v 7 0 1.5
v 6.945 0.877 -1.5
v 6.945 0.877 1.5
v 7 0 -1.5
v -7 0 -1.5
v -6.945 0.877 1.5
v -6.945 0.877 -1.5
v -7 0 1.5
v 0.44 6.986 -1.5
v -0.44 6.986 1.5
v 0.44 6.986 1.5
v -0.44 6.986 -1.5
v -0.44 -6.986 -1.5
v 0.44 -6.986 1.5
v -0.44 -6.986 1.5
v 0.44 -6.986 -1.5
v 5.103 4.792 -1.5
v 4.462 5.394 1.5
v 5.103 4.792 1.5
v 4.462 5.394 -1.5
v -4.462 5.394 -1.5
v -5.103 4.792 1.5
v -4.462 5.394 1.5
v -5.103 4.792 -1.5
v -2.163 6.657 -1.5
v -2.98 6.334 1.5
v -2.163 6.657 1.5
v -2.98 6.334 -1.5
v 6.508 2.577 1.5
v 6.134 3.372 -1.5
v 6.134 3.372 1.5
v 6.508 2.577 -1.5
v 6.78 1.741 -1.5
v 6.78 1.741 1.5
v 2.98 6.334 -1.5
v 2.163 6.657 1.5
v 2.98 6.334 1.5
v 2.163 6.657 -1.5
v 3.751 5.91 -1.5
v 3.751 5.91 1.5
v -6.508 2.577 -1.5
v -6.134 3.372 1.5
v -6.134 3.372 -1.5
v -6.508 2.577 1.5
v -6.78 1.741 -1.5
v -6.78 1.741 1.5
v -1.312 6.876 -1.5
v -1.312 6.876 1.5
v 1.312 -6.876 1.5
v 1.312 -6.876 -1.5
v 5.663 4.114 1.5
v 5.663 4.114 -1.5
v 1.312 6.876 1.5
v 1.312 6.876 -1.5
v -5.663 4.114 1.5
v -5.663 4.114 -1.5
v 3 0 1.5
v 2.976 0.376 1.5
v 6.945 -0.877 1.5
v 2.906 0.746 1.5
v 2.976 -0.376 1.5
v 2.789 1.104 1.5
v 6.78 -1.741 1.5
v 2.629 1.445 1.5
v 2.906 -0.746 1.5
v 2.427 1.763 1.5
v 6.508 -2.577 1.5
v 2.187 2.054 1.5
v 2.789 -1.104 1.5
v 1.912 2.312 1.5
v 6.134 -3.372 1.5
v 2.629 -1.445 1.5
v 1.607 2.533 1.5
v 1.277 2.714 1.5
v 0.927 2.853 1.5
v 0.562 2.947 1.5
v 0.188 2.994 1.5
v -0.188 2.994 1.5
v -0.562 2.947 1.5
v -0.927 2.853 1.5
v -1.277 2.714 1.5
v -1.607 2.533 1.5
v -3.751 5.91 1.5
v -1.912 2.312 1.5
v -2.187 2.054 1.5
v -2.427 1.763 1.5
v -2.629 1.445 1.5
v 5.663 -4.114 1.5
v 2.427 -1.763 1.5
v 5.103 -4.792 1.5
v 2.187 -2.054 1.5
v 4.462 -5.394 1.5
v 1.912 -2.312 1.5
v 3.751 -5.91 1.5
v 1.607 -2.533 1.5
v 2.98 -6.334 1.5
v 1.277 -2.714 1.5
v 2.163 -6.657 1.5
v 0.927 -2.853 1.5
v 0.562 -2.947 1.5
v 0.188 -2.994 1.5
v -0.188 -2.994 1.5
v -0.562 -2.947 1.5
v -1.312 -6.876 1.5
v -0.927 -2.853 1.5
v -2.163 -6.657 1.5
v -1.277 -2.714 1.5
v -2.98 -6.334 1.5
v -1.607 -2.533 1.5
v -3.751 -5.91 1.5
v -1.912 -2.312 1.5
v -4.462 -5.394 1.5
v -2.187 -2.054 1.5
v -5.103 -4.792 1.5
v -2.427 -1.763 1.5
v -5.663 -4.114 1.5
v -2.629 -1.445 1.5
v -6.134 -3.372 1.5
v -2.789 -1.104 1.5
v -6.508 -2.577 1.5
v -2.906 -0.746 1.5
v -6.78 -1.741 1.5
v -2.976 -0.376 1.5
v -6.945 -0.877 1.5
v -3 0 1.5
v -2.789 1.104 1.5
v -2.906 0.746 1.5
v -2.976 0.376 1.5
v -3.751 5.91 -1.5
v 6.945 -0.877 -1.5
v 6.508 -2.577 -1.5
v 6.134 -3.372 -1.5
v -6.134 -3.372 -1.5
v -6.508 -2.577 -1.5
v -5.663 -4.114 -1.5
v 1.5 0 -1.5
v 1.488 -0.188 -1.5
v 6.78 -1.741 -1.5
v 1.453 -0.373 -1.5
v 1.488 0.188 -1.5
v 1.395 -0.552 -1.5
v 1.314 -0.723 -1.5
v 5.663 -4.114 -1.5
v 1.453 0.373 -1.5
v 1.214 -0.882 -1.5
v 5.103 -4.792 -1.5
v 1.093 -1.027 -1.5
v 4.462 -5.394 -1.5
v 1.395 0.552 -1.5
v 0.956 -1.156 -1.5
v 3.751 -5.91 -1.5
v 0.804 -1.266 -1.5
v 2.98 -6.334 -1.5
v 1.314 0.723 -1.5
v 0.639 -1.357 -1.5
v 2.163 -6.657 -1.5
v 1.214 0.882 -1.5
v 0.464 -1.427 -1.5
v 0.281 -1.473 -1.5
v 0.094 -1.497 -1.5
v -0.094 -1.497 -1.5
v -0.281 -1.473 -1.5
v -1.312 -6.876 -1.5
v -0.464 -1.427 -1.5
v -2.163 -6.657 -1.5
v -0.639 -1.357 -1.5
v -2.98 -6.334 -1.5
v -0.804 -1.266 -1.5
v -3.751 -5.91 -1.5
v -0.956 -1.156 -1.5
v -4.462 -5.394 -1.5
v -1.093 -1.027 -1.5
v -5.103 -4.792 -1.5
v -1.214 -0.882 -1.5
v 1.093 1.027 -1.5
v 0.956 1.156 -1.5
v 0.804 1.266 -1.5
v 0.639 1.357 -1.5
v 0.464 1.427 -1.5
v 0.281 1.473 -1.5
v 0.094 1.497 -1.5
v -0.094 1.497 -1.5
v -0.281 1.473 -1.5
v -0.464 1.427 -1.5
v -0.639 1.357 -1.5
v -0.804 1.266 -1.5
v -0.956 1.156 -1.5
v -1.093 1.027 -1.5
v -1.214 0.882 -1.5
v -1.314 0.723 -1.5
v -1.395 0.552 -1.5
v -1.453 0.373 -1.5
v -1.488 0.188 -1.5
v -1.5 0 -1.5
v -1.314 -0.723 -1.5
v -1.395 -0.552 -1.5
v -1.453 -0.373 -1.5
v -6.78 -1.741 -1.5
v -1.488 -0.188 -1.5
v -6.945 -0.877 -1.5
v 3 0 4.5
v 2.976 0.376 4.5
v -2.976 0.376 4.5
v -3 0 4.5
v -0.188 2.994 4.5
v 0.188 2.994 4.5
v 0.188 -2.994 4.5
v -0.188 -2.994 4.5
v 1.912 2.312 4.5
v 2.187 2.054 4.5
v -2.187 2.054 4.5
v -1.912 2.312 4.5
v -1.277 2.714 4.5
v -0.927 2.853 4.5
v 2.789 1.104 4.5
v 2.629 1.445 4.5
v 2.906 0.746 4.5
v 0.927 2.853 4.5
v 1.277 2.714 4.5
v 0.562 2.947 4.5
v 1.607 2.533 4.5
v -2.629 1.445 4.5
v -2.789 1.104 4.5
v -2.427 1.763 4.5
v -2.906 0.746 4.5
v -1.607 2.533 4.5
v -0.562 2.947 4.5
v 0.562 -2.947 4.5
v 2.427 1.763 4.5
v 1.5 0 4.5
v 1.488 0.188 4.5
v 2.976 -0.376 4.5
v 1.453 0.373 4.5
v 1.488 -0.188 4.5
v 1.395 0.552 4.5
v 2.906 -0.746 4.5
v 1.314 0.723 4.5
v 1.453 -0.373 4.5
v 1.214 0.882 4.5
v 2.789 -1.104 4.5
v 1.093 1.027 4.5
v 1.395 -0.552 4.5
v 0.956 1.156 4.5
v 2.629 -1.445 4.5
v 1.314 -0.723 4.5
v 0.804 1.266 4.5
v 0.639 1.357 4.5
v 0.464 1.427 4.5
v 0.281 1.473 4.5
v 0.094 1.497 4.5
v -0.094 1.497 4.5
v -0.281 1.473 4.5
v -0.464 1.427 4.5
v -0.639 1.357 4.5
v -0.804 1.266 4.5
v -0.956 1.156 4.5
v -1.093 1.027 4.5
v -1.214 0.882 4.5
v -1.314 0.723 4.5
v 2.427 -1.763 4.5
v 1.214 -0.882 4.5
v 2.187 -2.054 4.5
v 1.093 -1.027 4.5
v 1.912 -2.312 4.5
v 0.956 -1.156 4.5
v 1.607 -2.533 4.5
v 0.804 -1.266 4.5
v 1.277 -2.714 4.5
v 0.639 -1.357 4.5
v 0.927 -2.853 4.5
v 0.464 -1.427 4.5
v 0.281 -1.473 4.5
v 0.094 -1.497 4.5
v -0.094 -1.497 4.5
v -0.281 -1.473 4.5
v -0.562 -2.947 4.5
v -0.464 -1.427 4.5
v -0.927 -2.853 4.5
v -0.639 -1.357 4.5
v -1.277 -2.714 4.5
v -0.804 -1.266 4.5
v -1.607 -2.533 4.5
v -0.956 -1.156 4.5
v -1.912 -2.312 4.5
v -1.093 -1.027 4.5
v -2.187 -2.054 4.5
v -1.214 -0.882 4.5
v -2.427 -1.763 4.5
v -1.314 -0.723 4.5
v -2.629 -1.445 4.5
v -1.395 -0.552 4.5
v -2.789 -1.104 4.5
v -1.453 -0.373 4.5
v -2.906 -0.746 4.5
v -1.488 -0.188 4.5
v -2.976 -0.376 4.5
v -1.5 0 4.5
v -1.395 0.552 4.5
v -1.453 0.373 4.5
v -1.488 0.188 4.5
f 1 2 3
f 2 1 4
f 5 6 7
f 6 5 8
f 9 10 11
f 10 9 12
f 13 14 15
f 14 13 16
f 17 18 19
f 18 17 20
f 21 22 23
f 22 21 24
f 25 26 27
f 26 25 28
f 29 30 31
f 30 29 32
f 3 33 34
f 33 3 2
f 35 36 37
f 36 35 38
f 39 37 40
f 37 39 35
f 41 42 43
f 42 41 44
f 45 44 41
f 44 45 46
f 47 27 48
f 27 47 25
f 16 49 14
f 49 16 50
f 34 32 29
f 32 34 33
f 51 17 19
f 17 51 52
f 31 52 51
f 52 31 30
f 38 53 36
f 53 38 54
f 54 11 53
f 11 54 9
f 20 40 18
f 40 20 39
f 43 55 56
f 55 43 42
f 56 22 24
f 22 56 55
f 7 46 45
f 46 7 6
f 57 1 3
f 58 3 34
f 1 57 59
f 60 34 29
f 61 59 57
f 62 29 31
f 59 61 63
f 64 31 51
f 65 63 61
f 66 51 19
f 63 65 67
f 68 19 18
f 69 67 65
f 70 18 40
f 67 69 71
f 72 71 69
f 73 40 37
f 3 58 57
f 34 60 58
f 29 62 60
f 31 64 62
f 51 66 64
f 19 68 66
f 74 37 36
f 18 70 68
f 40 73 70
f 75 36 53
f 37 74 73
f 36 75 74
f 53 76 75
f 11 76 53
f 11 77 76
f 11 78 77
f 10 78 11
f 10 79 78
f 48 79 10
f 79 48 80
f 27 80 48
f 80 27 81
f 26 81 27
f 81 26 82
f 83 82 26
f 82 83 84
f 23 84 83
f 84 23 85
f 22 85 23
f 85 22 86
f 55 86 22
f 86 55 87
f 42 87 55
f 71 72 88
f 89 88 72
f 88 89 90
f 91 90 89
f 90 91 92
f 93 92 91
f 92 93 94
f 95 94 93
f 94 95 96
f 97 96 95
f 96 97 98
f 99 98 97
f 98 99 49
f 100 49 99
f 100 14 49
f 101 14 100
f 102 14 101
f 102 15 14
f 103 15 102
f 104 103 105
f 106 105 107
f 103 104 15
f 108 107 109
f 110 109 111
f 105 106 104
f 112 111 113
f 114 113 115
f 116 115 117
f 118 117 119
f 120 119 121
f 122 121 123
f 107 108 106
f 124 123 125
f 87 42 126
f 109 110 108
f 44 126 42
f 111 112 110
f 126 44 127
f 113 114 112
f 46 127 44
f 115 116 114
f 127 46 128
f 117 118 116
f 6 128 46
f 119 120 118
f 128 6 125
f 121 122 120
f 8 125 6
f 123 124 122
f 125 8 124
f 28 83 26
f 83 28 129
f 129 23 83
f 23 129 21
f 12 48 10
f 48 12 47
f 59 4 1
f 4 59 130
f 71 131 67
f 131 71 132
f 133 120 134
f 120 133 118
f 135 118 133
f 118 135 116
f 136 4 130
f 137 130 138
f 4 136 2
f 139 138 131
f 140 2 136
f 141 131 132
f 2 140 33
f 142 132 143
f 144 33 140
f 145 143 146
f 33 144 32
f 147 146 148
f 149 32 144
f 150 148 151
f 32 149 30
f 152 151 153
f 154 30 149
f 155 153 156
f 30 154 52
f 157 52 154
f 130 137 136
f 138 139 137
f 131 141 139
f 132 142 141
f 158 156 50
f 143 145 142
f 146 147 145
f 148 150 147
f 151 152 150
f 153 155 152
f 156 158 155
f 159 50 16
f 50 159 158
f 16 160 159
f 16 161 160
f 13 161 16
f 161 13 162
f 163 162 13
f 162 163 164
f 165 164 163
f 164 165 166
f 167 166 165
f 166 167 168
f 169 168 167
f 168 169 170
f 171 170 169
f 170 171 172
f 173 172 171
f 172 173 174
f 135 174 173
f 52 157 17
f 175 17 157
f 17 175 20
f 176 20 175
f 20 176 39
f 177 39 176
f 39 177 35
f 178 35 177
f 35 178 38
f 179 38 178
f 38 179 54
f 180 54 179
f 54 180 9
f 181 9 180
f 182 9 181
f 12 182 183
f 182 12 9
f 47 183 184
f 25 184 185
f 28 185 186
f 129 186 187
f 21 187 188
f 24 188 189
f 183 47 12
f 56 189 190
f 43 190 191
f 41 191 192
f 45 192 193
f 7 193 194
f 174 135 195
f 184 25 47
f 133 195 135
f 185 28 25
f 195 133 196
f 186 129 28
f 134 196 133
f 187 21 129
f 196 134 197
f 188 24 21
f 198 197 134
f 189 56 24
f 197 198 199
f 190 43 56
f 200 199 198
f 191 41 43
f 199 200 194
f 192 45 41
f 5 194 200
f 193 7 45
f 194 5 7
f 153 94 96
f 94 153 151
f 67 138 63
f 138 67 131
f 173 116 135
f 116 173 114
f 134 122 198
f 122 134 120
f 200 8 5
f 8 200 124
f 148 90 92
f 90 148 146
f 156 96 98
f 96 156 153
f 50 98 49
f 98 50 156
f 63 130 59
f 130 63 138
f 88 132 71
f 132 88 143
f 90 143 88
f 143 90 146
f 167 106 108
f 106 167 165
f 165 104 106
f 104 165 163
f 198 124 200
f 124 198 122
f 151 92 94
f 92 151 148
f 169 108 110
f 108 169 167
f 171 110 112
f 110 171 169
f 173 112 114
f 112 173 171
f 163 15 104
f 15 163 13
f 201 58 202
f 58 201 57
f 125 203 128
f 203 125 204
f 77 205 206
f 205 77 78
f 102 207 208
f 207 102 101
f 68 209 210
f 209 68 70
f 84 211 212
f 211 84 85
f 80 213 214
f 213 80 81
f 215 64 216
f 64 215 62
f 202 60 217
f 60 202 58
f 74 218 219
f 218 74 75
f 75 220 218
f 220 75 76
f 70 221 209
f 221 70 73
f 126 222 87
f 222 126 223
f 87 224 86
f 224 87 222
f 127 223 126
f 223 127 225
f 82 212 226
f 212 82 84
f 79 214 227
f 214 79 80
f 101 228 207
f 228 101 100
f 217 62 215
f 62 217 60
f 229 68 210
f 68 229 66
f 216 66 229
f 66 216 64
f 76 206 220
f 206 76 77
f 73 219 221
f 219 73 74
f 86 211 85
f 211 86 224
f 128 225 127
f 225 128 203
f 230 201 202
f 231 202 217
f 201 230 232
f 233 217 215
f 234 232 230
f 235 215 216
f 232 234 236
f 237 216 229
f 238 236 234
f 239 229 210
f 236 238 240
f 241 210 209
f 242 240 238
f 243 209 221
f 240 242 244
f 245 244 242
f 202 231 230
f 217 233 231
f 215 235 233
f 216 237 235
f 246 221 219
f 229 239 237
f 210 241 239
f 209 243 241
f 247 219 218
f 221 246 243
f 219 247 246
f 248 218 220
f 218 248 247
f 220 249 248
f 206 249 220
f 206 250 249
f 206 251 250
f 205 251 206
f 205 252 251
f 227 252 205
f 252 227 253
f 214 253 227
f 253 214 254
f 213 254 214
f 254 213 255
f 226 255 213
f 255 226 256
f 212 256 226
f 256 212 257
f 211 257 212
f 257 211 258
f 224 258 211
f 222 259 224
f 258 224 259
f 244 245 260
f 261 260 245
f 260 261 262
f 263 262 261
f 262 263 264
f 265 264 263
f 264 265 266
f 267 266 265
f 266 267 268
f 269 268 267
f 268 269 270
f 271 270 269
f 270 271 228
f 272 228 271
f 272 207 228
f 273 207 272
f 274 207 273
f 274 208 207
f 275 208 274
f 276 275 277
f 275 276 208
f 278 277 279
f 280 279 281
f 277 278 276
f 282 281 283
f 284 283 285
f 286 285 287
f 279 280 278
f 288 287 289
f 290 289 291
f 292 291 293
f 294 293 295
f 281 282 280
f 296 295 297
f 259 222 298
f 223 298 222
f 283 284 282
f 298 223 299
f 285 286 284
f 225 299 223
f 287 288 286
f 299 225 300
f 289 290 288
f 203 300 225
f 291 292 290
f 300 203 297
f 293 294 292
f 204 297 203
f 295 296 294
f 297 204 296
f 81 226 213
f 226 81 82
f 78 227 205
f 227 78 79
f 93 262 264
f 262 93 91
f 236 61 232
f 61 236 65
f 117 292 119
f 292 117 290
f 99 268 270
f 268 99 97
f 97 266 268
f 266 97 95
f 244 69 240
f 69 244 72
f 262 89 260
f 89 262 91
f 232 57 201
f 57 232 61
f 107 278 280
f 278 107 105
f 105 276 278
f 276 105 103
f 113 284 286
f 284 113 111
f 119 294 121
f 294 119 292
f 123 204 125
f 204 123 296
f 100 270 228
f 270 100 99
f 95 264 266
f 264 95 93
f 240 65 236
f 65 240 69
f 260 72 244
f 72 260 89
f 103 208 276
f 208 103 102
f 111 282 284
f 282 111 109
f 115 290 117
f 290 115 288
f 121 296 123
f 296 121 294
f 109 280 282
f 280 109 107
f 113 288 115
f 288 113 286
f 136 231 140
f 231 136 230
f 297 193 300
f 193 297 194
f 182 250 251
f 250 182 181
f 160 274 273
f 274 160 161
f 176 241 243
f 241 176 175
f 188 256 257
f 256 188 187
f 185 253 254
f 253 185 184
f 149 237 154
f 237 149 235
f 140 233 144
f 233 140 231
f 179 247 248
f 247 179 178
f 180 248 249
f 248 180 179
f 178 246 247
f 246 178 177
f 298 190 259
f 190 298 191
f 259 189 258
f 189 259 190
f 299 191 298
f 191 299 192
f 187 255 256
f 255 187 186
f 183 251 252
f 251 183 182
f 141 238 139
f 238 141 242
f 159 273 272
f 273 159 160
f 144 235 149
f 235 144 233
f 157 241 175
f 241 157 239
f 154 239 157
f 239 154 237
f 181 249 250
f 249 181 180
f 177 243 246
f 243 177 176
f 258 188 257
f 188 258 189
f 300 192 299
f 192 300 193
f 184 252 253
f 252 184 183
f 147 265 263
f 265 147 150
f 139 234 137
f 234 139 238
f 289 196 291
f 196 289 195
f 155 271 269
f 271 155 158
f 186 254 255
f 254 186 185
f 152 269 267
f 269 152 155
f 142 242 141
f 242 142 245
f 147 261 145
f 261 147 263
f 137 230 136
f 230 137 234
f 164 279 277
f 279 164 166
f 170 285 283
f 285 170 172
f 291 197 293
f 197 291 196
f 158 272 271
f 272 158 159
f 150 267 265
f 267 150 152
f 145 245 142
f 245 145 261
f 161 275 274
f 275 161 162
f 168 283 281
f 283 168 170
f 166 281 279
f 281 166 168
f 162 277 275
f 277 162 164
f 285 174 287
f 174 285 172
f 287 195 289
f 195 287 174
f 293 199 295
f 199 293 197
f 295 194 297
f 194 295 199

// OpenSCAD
$fn = 50;


difference() {
	union() {
		translate(v = [0, 0, -1.5000000000]) {
			cylinder(h = 3, r = 7.0000000000);
		}
		translate(v = [0, 0, -1.5000000000]) {
			cylinder(h = 6, r = 3.0000000000);
		}
	}
	union() {
		translate(v = [0, 0, -100.0000000000]) {
			cylinder(h = 200, r = 1.5000000000);
		}
	}
}
